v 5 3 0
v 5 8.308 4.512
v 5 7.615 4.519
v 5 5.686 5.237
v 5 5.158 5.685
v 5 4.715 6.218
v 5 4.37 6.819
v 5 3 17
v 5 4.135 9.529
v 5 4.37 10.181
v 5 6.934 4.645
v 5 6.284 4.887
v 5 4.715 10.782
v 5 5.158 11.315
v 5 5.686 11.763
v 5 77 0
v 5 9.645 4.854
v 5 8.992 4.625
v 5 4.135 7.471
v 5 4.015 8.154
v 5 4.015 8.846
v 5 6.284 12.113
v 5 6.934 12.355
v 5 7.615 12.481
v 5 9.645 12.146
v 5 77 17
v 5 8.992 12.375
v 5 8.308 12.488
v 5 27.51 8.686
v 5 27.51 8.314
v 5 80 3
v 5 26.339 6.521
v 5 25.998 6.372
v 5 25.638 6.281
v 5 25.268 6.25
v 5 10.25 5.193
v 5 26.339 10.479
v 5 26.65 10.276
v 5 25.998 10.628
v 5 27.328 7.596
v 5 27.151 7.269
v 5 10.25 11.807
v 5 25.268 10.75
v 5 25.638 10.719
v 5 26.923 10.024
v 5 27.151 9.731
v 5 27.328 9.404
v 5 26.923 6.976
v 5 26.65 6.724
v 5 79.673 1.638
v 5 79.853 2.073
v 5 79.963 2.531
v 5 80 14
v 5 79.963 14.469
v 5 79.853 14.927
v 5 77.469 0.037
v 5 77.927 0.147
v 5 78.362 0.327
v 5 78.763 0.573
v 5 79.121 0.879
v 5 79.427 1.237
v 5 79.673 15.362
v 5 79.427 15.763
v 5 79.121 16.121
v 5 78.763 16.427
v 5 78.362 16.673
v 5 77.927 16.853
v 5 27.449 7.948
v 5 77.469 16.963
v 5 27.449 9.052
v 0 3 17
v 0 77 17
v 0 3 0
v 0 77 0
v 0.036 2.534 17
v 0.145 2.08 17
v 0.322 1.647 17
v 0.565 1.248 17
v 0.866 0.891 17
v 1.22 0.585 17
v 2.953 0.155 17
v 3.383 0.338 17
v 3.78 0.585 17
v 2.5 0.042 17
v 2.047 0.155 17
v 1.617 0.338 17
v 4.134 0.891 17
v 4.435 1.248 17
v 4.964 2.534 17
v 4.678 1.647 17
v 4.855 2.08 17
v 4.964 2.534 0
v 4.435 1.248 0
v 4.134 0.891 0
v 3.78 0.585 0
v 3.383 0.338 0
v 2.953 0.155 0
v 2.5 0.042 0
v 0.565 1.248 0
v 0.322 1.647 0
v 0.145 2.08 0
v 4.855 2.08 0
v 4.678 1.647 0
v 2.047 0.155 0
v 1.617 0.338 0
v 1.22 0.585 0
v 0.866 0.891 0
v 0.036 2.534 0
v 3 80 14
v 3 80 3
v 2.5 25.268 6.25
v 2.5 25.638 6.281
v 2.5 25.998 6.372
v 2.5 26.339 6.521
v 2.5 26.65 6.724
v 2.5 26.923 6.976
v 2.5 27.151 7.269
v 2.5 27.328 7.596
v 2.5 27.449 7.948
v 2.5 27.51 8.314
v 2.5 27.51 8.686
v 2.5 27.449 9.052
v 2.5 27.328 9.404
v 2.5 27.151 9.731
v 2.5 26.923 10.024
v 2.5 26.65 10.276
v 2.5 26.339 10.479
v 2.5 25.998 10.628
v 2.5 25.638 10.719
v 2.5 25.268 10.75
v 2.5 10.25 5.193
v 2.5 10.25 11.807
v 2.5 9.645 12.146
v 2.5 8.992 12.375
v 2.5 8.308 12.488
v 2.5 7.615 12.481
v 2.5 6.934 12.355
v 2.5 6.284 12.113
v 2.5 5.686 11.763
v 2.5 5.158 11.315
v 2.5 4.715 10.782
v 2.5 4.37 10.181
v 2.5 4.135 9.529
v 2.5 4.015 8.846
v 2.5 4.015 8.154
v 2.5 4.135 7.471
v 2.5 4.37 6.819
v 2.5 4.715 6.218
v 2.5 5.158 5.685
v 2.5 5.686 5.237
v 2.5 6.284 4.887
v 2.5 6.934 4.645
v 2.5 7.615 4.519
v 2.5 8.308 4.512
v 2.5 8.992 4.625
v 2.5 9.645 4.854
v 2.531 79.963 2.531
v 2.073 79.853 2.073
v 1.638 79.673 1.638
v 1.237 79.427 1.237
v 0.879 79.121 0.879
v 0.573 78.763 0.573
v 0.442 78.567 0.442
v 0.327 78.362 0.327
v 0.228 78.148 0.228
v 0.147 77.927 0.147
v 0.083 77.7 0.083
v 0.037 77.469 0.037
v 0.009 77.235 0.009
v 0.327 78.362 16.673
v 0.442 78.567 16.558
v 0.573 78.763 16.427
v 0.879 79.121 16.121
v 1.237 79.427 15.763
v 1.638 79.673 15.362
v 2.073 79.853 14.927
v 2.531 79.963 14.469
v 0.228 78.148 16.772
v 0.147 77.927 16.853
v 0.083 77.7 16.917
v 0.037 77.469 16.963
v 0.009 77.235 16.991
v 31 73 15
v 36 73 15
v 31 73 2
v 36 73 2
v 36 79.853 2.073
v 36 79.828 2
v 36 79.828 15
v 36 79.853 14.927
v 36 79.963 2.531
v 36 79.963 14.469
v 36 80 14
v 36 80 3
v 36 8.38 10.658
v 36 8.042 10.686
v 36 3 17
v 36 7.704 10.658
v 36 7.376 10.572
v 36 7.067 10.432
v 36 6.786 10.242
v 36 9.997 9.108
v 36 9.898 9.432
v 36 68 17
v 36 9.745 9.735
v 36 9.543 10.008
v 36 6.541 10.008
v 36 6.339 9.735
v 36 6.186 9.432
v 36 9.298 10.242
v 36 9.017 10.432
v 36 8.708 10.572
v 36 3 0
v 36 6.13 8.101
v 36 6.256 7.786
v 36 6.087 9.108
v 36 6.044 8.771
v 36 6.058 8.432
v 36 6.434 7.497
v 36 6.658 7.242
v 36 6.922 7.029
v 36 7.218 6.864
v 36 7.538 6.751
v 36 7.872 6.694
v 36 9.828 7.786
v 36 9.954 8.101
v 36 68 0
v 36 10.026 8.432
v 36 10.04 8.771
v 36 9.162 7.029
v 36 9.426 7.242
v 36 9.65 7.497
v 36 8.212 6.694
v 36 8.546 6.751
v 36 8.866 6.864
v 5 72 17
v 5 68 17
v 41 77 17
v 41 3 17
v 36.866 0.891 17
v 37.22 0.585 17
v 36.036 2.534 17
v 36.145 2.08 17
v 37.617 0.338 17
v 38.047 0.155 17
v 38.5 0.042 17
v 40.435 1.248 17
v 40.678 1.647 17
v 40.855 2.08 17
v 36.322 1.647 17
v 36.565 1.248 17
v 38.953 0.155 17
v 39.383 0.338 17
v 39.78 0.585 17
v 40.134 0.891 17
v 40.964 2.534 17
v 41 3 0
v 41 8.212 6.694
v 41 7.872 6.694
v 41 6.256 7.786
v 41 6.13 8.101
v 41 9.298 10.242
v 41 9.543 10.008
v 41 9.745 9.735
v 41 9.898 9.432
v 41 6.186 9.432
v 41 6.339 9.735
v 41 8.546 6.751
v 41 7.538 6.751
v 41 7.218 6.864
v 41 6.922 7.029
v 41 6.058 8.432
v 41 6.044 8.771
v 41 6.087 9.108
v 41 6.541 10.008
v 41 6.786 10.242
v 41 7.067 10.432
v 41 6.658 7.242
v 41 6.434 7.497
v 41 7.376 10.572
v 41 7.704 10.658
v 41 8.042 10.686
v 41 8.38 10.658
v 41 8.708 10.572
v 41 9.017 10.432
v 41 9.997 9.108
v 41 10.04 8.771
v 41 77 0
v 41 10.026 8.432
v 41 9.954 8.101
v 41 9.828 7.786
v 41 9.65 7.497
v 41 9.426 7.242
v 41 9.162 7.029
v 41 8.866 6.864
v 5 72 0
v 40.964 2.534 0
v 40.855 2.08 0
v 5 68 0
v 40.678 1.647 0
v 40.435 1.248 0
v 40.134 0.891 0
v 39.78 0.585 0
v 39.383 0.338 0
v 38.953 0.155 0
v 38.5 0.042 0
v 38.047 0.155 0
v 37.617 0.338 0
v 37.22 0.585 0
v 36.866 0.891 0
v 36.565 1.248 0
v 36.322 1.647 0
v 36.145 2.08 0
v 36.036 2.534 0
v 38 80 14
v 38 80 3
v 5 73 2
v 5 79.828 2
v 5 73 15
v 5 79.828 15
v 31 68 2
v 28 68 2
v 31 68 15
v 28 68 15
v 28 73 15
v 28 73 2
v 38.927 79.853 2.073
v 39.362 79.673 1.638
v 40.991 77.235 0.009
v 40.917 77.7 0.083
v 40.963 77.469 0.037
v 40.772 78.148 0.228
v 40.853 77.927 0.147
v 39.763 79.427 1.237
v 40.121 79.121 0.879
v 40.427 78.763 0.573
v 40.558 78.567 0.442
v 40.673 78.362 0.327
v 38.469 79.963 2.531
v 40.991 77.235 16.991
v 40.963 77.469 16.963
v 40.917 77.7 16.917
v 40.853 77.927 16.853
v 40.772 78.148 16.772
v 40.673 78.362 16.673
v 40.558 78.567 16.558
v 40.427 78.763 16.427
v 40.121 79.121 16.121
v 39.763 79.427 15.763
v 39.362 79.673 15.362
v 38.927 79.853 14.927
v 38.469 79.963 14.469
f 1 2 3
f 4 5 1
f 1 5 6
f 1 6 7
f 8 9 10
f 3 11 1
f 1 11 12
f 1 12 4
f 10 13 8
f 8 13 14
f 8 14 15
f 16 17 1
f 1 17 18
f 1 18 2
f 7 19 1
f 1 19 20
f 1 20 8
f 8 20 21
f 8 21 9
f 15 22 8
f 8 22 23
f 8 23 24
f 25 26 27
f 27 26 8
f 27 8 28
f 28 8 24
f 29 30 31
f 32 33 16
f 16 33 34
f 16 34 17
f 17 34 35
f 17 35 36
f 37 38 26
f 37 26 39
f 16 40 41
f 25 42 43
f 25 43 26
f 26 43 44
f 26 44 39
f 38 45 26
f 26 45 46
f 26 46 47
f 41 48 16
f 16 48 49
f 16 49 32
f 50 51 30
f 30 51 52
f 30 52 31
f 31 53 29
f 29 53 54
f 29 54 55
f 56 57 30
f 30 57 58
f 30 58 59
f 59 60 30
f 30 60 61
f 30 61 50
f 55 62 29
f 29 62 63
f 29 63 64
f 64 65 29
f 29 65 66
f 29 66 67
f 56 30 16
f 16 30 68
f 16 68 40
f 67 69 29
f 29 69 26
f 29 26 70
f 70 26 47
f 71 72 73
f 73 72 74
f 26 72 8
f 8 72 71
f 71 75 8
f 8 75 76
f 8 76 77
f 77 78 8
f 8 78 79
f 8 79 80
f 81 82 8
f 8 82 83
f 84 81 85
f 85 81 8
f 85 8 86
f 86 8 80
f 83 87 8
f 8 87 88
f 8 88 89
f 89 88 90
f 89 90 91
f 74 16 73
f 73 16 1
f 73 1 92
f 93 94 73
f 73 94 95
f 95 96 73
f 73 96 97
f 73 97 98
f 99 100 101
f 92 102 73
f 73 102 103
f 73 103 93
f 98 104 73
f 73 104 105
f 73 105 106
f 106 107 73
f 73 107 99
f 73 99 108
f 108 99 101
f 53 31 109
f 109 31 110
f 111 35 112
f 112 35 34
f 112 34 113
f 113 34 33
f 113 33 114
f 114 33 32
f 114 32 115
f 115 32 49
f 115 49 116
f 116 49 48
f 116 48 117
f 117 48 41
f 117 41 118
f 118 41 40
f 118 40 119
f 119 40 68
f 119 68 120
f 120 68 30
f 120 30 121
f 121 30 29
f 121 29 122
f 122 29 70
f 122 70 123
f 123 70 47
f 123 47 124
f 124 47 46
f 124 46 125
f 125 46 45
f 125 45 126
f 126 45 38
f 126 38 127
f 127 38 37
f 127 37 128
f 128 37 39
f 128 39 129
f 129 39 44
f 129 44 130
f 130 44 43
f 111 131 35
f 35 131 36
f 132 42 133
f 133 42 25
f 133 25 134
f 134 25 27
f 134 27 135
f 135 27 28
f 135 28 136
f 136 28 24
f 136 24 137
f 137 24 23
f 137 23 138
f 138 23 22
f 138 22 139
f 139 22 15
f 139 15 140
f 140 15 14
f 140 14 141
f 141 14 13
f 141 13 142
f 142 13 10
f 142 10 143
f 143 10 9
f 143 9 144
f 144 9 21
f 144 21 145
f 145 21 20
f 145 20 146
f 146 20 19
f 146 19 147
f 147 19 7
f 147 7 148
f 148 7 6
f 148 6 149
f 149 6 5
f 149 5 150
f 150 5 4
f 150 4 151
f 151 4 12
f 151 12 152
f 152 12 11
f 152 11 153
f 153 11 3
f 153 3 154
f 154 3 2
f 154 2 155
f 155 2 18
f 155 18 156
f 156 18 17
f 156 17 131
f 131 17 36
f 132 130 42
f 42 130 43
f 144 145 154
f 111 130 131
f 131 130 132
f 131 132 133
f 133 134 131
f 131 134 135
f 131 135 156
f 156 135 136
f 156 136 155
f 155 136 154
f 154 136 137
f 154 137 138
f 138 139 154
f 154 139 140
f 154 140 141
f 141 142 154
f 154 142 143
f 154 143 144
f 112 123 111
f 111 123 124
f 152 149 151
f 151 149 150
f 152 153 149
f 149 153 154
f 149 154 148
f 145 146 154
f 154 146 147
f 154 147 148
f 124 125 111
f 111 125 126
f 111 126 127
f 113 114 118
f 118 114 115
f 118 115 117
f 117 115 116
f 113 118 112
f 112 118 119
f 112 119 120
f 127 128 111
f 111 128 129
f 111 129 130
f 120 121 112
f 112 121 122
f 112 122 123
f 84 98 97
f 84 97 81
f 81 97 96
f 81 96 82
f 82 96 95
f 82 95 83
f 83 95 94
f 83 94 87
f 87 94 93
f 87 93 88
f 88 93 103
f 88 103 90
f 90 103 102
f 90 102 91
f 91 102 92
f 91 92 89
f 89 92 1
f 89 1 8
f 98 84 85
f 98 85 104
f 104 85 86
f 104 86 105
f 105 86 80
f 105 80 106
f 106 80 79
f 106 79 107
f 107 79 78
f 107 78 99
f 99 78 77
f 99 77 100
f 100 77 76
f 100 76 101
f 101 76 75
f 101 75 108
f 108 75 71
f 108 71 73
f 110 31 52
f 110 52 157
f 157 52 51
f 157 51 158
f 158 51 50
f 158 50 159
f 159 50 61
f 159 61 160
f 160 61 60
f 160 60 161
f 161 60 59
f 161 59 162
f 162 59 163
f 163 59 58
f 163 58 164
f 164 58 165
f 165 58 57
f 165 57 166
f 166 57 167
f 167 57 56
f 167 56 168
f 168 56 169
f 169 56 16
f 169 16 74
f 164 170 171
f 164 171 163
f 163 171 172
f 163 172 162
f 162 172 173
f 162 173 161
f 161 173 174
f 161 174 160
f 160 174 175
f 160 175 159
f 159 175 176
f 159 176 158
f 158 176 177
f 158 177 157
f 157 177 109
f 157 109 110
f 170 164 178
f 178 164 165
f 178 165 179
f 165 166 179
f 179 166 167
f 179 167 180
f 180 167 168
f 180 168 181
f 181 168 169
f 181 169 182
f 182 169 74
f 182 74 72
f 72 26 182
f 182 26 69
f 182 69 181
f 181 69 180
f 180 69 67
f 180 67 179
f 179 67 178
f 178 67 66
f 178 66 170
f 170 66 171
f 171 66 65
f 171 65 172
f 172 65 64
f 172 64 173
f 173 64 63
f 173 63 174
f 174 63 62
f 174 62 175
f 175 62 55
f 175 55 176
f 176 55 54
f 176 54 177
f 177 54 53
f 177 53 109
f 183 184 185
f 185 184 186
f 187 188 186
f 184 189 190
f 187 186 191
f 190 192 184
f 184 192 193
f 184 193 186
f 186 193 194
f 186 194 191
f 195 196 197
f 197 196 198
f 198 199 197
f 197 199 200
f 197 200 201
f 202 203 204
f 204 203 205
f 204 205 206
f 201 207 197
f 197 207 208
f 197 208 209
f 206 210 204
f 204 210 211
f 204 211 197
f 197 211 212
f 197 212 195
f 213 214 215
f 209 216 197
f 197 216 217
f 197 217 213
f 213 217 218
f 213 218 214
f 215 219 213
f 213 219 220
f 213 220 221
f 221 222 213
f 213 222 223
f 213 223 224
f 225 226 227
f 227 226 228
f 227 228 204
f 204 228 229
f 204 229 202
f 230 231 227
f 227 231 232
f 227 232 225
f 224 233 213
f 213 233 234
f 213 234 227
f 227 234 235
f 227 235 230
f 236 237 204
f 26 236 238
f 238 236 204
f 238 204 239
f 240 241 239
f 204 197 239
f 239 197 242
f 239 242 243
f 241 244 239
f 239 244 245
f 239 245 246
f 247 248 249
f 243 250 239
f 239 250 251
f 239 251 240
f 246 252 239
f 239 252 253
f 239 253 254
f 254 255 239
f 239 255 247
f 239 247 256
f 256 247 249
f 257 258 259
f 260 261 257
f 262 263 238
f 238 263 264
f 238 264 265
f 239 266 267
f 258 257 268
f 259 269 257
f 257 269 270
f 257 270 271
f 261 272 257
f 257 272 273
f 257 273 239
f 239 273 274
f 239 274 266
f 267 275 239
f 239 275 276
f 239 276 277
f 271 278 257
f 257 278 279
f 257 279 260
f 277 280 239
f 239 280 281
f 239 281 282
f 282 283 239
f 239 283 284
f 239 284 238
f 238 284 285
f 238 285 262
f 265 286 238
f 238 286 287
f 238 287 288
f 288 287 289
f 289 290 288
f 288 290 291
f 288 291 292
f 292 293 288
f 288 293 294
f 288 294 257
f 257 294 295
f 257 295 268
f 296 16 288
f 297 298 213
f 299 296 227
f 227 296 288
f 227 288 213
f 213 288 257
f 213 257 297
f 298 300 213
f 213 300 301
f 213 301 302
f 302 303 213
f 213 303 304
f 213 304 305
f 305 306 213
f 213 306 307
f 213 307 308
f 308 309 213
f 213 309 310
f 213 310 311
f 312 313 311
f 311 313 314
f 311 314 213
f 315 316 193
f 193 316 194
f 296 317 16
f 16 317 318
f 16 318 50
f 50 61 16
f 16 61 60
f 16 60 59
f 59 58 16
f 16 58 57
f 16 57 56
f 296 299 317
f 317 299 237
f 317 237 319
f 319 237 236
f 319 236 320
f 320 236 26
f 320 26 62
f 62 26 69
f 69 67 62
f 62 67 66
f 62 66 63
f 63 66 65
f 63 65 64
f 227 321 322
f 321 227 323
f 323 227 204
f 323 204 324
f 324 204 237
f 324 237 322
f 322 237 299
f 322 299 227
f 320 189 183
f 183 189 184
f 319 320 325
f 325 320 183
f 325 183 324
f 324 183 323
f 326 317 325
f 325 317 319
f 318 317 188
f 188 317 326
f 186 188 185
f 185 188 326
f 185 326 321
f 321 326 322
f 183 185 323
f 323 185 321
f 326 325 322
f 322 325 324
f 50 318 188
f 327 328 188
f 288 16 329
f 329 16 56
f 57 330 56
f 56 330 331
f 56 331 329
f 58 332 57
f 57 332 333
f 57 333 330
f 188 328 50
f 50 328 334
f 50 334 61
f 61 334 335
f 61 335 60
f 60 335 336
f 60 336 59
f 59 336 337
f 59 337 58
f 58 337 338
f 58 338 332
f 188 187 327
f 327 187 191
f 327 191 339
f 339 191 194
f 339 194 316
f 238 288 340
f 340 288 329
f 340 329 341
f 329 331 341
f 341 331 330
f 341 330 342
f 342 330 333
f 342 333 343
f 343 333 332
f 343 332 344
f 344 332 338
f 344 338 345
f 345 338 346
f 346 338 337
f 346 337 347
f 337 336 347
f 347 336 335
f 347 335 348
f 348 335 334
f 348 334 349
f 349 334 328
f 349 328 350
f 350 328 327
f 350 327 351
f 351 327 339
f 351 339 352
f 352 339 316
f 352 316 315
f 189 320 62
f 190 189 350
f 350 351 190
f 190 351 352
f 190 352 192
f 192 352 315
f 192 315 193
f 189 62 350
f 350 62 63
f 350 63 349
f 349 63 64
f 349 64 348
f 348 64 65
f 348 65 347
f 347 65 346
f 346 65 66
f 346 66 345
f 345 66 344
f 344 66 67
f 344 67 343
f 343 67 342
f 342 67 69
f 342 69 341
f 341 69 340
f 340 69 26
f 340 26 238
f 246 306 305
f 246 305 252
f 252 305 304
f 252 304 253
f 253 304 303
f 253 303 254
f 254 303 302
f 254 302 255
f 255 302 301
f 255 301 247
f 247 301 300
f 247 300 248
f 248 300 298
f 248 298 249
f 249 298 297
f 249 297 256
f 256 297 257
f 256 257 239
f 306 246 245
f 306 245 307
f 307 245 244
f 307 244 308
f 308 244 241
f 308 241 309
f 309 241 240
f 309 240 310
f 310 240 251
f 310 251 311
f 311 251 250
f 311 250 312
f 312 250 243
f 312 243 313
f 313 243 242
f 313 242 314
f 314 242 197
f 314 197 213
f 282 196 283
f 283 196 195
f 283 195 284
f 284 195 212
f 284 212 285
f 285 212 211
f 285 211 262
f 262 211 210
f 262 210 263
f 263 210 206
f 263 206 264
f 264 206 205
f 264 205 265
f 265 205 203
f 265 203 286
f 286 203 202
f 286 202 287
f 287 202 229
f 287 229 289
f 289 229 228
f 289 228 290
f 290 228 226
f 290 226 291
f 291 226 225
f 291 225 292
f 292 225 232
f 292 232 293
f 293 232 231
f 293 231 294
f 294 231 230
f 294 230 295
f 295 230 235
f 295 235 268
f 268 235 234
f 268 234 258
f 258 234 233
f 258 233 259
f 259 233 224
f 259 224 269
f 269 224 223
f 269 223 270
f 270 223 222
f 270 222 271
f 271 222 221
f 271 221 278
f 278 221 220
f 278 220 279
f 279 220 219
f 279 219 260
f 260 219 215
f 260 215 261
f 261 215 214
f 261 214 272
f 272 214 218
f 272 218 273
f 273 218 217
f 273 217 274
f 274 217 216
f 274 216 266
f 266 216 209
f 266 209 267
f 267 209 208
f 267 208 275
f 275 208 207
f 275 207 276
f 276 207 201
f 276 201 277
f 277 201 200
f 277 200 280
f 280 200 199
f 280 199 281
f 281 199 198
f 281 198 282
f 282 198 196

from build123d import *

# Parameters (mm, degrees)
SKETCH1_W             = 5
SKETCH1_H             = 17
BOSS_EXTRUDE1_DEPTH   = 80
BOSS_EXTRUDE1_2_DEPTH = 80
CUT_EXTRUDE1_DEPTH    = 2.5
BOSS_EXTRUDE2_REACH   = 91.359
SKETCH5_W             = 3
SKETCH5_H             = 13
CUT_EXTRUDE2_DEPTH    = 5
FILLET1_R             = 3
FILLET2_R             = 3
SKETCH6_R             = 2
CUT_EXTRUDE3_DEPTH    = 90.358827208


with BuildPart() as part:
    # Sketch1 → Boss-Extrude1 (new body)
    with BuildSketch(Plane(origin=(0, 0, 0), x_dir=(1, 0, 0), z_dir=(0, 1, 0))):
        with Locations((2.5, -8.5)):
            Rectangle(SKETCH1_W, SKETCH1_H)
    extrude(amount=BOSS_EXTRUDE1_DEPTH)

    # Sketch2 → Cut-Extrude1 (cut)
    with BuildSketch(Plane(origin=(5, 0, 0), x_dir=(0, 0, -1), z_dir=(1, 0, 0))):
        with BuildLine():
            Line((-10.75, 25.267799715), (-11.807189139, 10.25))
            ThreePointArc((-11.807189139, 10.25), (-8.5, 12), (-5.192810861, 10.25))
            Line((-5.192810861, 10.25), (-6.25, 25.267799715))
            ThreePointArc((-6.25, 25.267799715), (-8.5, 27.517799715), (-10.75, 25.267799715))
        make_face()
        with BuildLine():
            ThreePointArc((-5.192810861, 10.25), (-8.5, 12), (-11.807189139, 10.25))
            Line((-11.807189139, 10.25), (-11.807189139, 5.75))
            ThreePointArc((-11.807189139, 5.75), (-8.5, 4), (-5.192810861, 5.75))
            Line((-5.192810861, 5.75), (-5.192810861, 10.25))
        make_face()
        with BuildLine():
            Line((-11.807189139, 5.75), (-11.807189139, 10.25))
            ThreePointArc((-11.807189139, 10.25), (-12.5, 8), (-11.807189139, 5.75))
        make_face()
        with BuildLine():
            ThreePointArc((-4.5, 8), (-4.677124344, 9.177124344), (-5.192810861, 10.25))
            Line((-5.192810861, 10.25), (-5.192810861, 5.75))
            ThreePointArc((-5.192810861, 5.75), (-4.677124344, 6.822875656), (-4.5, 8))
        make_face()
    extrude(amount=-CUT_EXTRUDE1_DEPTH, mode=Mode.SUBTRACT)


with BuildPart() as body_2:
    # Sketch1 → Boss-Extrude1 2 (new body)
    with BuildSketch(Plane(origin=(0, 0, 0), x_dir=(1, 0, 0), z_dir=(0, 1, 0))):
        with Locations((38.5, -8.5)):
            Rectangle(SKETCH1_W, SKETCH1_H)
    extrude(amount=BOSS_EXTRUDE1_2_DEPTH)


    # Sketch4 → Boss-Extrude2 (add, up to next)
    with BuildSketch(Plane.ZY.offset(-36), mode=Mode.PRIVATE) as boss_extrude2_sk1:
        Polygon((2, 73), (15, 73), (15, 80), (17, 80), (17, 72), (17, 68), (0, 68), (0, 72), (0, 80), (2, 80), align=None)
    boss_extrude2_tool1 = extrude(boss_extrude2_sk1.sketch, amount=BOSS_EXTRUDE2_REACH, mode=Mode.PRIVATE) - part.part
    add(boss_extrude2_tool1.solids().sort_by_distance((36, 71.986726, 8.5))[0])

    # Sketch5 → Cut-Extrude2 (cut)
    with BuildSketch(Plane(origin=(0, 73, 0), x_dir=(1, 0, 0), z_dir=(0, 1, 0))):
        with Locations((29.5, -8.5)):
            Rectangle(SKETCH5_W, SKETCH5_H)
    extrude(amount=-CUT_EXTRUDE2_DEPTH, mode=Mode.SUBTRACT)

    # Fillet1
    # the kernel refuses this fillet: 3 mm, written as the material it takes off along each edge
    with BuildSketch(Plane(origin=(36, 0, 24.5), x_dir=(0, 1, 0), z_dir=(0, 0, -1)), Plane(origin=(41, 0, -7.5), x_dir=(0, 1, 0), z_dir=(0, 0, 1)), Plane(origin=(41, 80, -7.5), x_dir=(-1, 0, 0), z_dir=(0, 0, 1))) as fillet1_piece_1:
        with BuildLine():
            CenterArc((FILLET1_R, FILLET1_R), FILLET1_R, 180, 90)
            Line((0, FILLET1_R), (0, 0))
            Line((0, 0), (FILLET1_R, 0))
        make_face()
    extrude(amount=32, mode=Mode.SUBTRACT)
    with BuildSketch(Plane(origin=(-2.5, 80, 17), x_dir=(0, 0, -1), z_dir=(1, 0, 0)), Plane(origin=(48.5, 80, 0), x_dir=(0, 0, 1), z_dir=(-1, 0, 0))) as fillet1_piece_2:
        with BuildLine():
            CenterArc((FILLET1_R, -FILLET1_R), FILLET1_R, 90, 90)
            Line((0, -FILLET1_R), (0, 0))
            Line((0, 0), (FILLET1_R, 0))
        make_face()
    extrude(amount=51, mode=Mode.SUBTRACT)

    # Sketch6 → Cut-Extrude3 (cut, through all)
    with BuildSketch(Plane.ZY.offset(-36)):
        with Locations((8.686376561, 8.041960108)):
            Circle(SKETCH6_R)
    extrude(amount=-CUT_EXTRUDE3_DEPTH, mode=Mode.SUBTRACT)


with BuildPart() as part_1:
    add(part.part)

    # Fillet2
    # the kernel refuses this fillet: 3 mm, written as the material it takes off along each edge
    with BuildSketch(Plane(origin=(0, 0, 24.5), x_dir=(0, 1, 0), z_dir=(0, 0, -1)), Plane(origin=(5, 0, -7.5), x_dir=(0, 1, 0), z_dir=(0, 0, 1))) as fillet2_piece_1:
        with BuildLine():
            CenterArc((FILLET2_R, FILLET2_R), FILLET2_R, 180, 90)
            Line((0, FILLET2_R), (0, 0))
            Line((0, 0), (FILLET2_R, 0))
        make_face()
    extrude(amount=32, mode=Mode.SUBTRACT)
    with BuildSketch(Plane(origin=(12.5, 80, 17), x_dir=(0, 0, -1), z_dir=(-1, 0, 0))) as fillet2_piece_2:
        with BuildLine():
            CenterArc((FILLET2_R, FILLET2_R), FILLET2_R, 180, 90)
            Line((0, FILLET2_R), (0, 0))
            Line((0, 0), (FILLET2_R, 0))
        make_face()
    extrude(amount=20, mode=Mode.SUBTRACT)
    with BuildSketch(Plane(origin=(0, 80, 24.5), x_dir=(0, -1, 0), z_dir=(0, 0, -1))) as fillet2_piece_3:
        with BuildLine():
            CenterArc((FILLET2_R, -FILLET2_R), FILLET2_R, 90, 90)
            Line((0, -FILLET2_R), (0, 0))
            Line((0, 0), (FILLET2_R, 0))
        make_face()
    extrude(amount=32, mode=Mode.SUBTRACT)
    with BuildSketch(Plane(origin=(-7.5, 80, 0), x_dir=(0, -1, 0), z_dir=(1, 0, 0))) as fillet2_piece_4:
        with BuildLine():
            CenterArc((FILLET2_R, -FILLET2_R), FILLET2_R, 90, 90)
            Line((0, -FILLET2_R), (0, 0))
            Line((0, 0), (FILLET2_R, 0))
        make_face()
    extrude(amount=20, mode=Mode.SUBTRACT)


solid = Compound([body_2.part, part_1.part])
